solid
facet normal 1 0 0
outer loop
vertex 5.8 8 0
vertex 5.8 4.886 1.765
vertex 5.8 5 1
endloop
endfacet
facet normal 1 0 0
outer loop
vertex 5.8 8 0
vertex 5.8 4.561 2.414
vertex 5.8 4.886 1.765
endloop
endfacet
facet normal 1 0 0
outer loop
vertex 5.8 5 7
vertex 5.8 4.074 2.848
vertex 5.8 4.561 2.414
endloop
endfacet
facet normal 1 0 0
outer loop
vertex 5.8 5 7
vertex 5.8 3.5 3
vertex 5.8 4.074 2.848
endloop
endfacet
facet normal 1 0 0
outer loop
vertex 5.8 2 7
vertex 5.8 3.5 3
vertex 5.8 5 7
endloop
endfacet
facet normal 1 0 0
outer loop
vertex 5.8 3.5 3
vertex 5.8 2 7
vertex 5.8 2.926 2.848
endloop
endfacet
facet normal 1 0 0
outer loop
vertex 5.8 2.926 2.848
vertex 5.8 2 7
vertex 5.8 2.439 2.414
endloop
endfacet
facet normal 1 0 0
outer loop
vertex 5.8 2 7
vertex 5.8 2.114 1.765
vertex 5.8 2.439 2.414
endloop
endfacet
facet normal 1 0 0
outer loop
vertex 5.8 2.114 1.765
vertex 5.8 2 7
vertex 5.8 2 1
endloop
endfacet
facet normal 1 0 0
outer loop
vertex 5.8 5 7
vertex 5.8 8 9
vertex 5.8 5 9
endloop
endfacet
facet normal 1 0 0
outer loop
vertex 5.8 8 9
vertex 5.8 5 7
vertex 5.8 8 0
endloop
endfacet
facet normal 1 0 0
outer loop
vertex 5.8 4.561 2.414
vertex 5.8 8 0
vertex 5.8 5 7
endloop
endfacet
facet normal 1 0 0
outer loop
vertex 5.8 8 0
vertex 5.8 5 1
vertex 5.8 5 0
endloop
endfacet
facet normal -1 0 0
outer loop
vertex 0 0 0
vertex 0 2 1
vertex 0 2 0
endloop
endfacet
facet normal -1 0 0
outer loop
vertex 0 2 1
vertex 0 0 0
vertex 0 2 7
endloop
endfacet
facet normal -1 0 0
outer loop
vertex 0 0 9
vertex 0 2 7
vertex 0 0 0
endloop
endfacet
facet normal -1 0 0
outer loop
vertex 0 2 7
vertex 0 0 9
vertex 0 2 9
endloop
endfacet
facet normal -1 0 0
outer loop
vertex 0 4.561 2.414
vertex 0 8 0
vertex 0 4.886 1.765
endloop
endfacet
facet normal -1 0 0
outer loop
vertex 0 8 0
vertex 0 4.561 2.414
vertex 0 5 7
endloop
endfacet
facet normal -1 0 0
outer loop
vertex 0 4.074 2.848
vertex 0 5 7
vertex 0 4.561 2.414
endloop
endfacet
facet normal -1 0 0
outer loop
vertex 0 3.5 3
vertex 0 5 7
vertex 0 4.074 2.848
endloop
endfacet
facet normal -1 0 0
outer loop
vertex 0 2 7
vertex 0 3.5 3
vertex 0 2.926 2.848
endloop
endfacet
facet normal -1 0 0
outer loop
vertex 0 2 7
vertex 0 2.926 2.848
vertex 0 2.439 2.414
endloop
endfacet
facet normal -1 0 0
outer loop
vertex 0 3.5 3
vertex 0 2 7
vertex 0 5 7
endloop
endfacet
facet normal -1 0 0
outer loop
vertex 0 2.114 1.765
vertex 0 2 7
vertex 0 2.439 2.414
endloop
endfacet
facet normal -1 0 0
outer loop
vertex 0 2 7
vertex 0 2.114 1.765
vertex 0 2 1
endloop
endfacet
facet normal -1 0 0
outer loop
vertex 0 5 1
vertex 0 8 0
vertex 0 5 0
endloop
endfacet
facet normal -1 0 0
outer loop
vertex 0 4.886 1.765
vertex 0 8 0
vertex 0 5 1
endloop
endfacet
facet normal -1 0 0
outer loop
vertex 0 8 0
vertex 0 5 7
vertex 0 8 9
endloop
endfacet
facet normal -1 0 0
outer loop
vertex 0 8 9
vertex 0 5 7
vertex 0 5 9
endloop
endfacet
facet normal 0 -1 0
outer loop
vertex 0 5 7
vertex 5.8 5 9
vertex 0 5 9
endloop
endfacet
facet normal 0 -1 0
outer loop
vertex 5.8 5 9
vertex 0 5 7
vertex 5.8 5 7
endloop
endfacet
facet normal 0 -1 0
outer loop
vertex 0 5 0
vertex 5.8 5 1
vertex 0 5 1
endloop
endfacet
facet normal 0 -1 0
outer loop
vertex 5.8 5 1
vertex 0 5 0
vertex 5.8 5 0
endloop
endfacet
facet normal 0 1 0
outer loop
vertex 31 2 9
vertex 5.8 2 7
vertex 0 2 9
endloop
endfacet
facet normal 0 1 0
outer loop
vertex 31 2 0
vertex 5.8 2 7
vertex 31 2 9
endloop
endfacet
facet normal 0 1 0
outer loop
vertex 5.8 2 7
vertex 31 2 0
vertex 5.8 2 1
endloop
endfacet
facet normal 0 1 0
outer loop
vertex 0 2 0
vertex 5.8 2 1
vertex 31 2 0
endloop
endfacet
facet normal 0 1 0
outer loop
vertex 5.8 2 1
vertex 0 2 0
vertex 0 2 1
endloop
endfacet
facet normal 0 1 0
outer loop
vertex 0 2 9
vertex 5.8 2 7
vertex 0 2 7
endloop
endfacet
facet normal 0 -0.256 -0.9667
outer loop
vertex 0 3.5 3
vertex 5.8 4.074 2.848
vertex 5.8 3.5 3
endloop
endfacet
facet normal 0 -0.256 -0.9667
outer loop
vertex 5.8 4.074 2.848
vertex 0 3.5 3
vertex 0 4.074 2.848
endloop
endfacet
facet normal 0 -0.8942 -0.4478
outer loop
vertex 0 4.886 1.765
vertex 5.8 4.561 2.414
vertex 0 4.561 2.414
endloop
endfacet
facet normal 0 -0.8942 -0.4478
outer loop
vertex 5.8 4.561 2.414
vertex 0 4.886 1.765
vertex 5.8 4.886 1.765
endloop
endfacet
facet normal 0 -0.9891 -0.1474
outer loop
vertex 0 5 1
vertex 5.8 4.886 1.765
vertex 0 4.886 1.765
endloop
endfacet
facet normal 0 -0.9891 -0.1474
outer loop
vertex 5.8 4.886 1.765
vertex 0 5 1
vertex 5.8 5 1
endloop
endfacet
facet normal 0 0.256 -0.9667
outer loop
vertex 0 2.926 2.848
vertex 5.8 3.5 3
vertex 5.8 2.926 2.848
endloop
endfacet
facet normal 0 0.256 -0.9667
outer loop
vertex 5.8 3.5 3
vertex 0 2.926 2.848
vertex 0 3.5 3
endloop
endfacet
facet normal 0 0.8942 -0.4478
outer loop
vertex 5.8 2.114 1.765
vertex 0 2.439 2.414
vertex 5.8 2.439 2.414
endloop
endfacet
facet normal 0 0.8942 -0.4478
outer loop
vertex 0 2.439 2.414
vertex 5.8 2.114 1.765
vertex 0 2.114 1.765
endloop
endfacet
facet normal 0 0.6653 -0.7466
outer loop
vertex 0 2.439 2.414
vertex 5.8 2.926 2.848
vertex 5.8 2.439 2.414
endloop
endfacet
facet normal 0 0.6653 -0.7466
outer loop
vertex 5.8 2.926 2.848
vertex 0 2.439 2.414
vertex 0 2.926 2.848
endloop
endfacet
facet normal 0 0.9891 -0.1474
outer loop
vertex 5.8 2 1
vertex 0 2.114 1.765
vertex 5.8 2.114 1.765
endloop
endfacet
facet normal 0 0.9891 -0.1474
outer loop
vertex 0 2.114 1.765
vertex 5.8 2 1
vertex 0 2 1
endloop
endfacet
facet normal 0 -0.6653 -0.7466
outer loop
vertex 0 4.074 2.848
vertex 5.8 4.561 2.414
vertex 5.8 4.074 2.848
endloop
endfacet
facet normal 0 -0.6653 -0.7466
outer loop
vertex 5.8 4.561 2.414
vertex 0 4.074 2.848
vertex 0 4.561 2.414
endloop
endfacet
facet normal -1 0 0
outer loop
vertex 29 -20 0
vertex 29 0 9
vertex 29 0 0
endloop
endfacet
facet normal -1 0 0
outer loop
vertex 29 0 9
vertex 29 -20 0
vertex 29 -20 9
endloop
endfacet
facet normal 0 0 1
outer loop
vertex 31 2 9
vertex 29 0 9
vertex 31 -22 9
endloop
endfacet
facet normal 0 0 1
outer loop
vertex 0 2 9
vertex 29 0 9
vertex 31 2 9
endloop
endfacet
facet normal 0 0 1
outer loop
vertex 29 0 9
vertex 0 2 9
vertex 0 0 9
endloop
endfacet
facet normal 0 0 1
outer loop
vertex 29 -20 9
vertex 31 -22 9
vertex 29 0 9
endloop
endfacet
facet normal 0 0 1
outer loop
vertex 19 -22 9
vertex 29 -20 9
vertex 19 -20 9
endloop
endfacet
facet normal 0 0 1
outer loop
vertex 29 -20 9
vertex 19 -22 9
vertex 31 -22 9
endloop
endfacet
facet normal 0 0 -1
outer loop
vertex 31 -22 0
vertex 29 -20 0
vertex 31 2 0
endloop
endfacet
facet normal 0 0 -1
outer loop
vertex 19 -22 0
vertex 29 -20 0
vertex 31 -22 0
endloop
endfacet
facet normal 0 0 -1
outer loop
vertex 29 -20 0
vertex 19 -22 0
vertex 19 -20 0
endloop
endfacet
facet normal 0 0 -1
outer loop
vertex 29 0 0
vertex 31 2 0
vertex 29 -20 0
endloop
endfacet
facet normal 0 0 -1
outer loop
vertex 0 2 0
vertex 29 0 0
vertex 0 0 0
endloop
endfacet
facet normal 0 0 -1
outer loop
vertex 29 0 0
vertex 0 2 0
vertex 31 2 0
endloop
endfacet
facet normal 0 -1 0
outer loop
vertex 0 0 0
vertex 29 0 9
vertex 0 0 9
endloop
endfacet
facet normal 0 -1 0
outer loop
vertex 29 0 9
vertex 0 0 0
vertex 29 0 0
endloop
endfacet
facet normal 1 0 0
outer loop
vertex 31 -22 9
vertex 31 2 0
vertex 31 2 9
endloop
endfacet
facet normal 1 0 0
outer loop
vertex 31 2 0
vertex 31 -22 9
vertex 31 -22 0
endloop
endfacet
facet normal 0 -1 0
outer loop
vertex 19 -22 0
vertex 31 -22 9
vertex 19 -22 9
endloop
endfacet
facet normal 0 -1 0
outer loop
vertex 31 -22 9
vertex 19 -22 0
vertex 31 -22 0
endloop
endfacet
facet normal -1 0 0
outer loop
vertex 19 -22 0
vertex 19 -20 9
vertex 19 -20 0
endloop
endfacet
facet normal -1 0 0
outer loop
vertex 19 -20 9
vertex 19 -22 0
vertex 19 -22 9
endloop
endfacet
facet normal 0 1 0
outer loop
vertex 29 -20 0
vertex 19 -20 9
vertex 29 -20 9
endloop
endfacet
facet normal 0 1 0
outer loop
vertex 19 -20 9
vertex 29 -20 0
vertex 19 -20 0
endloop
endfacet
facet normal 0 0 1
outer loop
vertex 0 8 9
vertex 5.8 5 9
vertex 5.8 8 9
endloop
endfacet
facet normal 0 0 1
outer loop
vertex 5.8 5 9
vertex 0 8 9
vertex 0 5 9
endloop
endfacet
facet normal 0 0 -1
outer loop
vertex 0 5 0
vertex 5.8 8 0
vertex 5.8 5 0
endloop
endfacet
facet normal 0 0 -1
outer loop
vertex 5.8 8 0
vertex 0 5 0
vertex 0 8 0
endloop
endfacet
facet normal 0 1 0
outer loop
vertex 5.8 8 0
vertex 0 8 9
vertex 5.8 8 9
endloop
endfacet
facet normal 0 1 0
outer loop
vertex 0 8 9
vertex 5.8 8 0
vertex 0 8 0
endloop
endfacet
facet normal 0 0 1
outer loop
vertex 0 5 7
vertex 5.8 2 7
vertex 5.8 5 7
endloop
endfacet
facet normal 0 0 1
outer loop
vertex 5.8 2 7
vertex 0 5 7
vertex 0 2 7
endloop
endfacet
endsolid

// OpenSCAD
/*module pin() {
  union() {
    cylinder(h=2, d1=9, d2=9);
    translate([0,0,1.99])
      cylinder(h=1.01, d1=9, d2=5.8);
    translate([0,0,2.99])
      cylinder(h=2.01, d1=5.8, d2=5.8);
    translate([0,0,4.99])
      cylinder(h=1.01, d1=5.8, d2=9);
  }
}

translate([4.5,-6,4.5])
  rotate([270,0,0])
    pin();
cube([9,2,9]);*/

module corner() {
  difference() {
    cube([5.8, 3, 4]);

    translate([-0.1, 1.5, 0])
      rotate([0, 90, 0])
        scale([2/5, 1.5/5, 1])
          cylinder(h=6, r1=5, r2=5);
  }
}

cube([29, 2, 9]);
translate([29, -22, 0])
  cube([2, 24, 9]);
translate([19, -22, 0])
  cube([10, 2, 9]);

translate([0, 5, 0])
  cube([5.8, 3, 9]);

translate([0, 2, 3])
  cube([5.8, 3, 4]);

translate([0, 2, 1])
  corner();
